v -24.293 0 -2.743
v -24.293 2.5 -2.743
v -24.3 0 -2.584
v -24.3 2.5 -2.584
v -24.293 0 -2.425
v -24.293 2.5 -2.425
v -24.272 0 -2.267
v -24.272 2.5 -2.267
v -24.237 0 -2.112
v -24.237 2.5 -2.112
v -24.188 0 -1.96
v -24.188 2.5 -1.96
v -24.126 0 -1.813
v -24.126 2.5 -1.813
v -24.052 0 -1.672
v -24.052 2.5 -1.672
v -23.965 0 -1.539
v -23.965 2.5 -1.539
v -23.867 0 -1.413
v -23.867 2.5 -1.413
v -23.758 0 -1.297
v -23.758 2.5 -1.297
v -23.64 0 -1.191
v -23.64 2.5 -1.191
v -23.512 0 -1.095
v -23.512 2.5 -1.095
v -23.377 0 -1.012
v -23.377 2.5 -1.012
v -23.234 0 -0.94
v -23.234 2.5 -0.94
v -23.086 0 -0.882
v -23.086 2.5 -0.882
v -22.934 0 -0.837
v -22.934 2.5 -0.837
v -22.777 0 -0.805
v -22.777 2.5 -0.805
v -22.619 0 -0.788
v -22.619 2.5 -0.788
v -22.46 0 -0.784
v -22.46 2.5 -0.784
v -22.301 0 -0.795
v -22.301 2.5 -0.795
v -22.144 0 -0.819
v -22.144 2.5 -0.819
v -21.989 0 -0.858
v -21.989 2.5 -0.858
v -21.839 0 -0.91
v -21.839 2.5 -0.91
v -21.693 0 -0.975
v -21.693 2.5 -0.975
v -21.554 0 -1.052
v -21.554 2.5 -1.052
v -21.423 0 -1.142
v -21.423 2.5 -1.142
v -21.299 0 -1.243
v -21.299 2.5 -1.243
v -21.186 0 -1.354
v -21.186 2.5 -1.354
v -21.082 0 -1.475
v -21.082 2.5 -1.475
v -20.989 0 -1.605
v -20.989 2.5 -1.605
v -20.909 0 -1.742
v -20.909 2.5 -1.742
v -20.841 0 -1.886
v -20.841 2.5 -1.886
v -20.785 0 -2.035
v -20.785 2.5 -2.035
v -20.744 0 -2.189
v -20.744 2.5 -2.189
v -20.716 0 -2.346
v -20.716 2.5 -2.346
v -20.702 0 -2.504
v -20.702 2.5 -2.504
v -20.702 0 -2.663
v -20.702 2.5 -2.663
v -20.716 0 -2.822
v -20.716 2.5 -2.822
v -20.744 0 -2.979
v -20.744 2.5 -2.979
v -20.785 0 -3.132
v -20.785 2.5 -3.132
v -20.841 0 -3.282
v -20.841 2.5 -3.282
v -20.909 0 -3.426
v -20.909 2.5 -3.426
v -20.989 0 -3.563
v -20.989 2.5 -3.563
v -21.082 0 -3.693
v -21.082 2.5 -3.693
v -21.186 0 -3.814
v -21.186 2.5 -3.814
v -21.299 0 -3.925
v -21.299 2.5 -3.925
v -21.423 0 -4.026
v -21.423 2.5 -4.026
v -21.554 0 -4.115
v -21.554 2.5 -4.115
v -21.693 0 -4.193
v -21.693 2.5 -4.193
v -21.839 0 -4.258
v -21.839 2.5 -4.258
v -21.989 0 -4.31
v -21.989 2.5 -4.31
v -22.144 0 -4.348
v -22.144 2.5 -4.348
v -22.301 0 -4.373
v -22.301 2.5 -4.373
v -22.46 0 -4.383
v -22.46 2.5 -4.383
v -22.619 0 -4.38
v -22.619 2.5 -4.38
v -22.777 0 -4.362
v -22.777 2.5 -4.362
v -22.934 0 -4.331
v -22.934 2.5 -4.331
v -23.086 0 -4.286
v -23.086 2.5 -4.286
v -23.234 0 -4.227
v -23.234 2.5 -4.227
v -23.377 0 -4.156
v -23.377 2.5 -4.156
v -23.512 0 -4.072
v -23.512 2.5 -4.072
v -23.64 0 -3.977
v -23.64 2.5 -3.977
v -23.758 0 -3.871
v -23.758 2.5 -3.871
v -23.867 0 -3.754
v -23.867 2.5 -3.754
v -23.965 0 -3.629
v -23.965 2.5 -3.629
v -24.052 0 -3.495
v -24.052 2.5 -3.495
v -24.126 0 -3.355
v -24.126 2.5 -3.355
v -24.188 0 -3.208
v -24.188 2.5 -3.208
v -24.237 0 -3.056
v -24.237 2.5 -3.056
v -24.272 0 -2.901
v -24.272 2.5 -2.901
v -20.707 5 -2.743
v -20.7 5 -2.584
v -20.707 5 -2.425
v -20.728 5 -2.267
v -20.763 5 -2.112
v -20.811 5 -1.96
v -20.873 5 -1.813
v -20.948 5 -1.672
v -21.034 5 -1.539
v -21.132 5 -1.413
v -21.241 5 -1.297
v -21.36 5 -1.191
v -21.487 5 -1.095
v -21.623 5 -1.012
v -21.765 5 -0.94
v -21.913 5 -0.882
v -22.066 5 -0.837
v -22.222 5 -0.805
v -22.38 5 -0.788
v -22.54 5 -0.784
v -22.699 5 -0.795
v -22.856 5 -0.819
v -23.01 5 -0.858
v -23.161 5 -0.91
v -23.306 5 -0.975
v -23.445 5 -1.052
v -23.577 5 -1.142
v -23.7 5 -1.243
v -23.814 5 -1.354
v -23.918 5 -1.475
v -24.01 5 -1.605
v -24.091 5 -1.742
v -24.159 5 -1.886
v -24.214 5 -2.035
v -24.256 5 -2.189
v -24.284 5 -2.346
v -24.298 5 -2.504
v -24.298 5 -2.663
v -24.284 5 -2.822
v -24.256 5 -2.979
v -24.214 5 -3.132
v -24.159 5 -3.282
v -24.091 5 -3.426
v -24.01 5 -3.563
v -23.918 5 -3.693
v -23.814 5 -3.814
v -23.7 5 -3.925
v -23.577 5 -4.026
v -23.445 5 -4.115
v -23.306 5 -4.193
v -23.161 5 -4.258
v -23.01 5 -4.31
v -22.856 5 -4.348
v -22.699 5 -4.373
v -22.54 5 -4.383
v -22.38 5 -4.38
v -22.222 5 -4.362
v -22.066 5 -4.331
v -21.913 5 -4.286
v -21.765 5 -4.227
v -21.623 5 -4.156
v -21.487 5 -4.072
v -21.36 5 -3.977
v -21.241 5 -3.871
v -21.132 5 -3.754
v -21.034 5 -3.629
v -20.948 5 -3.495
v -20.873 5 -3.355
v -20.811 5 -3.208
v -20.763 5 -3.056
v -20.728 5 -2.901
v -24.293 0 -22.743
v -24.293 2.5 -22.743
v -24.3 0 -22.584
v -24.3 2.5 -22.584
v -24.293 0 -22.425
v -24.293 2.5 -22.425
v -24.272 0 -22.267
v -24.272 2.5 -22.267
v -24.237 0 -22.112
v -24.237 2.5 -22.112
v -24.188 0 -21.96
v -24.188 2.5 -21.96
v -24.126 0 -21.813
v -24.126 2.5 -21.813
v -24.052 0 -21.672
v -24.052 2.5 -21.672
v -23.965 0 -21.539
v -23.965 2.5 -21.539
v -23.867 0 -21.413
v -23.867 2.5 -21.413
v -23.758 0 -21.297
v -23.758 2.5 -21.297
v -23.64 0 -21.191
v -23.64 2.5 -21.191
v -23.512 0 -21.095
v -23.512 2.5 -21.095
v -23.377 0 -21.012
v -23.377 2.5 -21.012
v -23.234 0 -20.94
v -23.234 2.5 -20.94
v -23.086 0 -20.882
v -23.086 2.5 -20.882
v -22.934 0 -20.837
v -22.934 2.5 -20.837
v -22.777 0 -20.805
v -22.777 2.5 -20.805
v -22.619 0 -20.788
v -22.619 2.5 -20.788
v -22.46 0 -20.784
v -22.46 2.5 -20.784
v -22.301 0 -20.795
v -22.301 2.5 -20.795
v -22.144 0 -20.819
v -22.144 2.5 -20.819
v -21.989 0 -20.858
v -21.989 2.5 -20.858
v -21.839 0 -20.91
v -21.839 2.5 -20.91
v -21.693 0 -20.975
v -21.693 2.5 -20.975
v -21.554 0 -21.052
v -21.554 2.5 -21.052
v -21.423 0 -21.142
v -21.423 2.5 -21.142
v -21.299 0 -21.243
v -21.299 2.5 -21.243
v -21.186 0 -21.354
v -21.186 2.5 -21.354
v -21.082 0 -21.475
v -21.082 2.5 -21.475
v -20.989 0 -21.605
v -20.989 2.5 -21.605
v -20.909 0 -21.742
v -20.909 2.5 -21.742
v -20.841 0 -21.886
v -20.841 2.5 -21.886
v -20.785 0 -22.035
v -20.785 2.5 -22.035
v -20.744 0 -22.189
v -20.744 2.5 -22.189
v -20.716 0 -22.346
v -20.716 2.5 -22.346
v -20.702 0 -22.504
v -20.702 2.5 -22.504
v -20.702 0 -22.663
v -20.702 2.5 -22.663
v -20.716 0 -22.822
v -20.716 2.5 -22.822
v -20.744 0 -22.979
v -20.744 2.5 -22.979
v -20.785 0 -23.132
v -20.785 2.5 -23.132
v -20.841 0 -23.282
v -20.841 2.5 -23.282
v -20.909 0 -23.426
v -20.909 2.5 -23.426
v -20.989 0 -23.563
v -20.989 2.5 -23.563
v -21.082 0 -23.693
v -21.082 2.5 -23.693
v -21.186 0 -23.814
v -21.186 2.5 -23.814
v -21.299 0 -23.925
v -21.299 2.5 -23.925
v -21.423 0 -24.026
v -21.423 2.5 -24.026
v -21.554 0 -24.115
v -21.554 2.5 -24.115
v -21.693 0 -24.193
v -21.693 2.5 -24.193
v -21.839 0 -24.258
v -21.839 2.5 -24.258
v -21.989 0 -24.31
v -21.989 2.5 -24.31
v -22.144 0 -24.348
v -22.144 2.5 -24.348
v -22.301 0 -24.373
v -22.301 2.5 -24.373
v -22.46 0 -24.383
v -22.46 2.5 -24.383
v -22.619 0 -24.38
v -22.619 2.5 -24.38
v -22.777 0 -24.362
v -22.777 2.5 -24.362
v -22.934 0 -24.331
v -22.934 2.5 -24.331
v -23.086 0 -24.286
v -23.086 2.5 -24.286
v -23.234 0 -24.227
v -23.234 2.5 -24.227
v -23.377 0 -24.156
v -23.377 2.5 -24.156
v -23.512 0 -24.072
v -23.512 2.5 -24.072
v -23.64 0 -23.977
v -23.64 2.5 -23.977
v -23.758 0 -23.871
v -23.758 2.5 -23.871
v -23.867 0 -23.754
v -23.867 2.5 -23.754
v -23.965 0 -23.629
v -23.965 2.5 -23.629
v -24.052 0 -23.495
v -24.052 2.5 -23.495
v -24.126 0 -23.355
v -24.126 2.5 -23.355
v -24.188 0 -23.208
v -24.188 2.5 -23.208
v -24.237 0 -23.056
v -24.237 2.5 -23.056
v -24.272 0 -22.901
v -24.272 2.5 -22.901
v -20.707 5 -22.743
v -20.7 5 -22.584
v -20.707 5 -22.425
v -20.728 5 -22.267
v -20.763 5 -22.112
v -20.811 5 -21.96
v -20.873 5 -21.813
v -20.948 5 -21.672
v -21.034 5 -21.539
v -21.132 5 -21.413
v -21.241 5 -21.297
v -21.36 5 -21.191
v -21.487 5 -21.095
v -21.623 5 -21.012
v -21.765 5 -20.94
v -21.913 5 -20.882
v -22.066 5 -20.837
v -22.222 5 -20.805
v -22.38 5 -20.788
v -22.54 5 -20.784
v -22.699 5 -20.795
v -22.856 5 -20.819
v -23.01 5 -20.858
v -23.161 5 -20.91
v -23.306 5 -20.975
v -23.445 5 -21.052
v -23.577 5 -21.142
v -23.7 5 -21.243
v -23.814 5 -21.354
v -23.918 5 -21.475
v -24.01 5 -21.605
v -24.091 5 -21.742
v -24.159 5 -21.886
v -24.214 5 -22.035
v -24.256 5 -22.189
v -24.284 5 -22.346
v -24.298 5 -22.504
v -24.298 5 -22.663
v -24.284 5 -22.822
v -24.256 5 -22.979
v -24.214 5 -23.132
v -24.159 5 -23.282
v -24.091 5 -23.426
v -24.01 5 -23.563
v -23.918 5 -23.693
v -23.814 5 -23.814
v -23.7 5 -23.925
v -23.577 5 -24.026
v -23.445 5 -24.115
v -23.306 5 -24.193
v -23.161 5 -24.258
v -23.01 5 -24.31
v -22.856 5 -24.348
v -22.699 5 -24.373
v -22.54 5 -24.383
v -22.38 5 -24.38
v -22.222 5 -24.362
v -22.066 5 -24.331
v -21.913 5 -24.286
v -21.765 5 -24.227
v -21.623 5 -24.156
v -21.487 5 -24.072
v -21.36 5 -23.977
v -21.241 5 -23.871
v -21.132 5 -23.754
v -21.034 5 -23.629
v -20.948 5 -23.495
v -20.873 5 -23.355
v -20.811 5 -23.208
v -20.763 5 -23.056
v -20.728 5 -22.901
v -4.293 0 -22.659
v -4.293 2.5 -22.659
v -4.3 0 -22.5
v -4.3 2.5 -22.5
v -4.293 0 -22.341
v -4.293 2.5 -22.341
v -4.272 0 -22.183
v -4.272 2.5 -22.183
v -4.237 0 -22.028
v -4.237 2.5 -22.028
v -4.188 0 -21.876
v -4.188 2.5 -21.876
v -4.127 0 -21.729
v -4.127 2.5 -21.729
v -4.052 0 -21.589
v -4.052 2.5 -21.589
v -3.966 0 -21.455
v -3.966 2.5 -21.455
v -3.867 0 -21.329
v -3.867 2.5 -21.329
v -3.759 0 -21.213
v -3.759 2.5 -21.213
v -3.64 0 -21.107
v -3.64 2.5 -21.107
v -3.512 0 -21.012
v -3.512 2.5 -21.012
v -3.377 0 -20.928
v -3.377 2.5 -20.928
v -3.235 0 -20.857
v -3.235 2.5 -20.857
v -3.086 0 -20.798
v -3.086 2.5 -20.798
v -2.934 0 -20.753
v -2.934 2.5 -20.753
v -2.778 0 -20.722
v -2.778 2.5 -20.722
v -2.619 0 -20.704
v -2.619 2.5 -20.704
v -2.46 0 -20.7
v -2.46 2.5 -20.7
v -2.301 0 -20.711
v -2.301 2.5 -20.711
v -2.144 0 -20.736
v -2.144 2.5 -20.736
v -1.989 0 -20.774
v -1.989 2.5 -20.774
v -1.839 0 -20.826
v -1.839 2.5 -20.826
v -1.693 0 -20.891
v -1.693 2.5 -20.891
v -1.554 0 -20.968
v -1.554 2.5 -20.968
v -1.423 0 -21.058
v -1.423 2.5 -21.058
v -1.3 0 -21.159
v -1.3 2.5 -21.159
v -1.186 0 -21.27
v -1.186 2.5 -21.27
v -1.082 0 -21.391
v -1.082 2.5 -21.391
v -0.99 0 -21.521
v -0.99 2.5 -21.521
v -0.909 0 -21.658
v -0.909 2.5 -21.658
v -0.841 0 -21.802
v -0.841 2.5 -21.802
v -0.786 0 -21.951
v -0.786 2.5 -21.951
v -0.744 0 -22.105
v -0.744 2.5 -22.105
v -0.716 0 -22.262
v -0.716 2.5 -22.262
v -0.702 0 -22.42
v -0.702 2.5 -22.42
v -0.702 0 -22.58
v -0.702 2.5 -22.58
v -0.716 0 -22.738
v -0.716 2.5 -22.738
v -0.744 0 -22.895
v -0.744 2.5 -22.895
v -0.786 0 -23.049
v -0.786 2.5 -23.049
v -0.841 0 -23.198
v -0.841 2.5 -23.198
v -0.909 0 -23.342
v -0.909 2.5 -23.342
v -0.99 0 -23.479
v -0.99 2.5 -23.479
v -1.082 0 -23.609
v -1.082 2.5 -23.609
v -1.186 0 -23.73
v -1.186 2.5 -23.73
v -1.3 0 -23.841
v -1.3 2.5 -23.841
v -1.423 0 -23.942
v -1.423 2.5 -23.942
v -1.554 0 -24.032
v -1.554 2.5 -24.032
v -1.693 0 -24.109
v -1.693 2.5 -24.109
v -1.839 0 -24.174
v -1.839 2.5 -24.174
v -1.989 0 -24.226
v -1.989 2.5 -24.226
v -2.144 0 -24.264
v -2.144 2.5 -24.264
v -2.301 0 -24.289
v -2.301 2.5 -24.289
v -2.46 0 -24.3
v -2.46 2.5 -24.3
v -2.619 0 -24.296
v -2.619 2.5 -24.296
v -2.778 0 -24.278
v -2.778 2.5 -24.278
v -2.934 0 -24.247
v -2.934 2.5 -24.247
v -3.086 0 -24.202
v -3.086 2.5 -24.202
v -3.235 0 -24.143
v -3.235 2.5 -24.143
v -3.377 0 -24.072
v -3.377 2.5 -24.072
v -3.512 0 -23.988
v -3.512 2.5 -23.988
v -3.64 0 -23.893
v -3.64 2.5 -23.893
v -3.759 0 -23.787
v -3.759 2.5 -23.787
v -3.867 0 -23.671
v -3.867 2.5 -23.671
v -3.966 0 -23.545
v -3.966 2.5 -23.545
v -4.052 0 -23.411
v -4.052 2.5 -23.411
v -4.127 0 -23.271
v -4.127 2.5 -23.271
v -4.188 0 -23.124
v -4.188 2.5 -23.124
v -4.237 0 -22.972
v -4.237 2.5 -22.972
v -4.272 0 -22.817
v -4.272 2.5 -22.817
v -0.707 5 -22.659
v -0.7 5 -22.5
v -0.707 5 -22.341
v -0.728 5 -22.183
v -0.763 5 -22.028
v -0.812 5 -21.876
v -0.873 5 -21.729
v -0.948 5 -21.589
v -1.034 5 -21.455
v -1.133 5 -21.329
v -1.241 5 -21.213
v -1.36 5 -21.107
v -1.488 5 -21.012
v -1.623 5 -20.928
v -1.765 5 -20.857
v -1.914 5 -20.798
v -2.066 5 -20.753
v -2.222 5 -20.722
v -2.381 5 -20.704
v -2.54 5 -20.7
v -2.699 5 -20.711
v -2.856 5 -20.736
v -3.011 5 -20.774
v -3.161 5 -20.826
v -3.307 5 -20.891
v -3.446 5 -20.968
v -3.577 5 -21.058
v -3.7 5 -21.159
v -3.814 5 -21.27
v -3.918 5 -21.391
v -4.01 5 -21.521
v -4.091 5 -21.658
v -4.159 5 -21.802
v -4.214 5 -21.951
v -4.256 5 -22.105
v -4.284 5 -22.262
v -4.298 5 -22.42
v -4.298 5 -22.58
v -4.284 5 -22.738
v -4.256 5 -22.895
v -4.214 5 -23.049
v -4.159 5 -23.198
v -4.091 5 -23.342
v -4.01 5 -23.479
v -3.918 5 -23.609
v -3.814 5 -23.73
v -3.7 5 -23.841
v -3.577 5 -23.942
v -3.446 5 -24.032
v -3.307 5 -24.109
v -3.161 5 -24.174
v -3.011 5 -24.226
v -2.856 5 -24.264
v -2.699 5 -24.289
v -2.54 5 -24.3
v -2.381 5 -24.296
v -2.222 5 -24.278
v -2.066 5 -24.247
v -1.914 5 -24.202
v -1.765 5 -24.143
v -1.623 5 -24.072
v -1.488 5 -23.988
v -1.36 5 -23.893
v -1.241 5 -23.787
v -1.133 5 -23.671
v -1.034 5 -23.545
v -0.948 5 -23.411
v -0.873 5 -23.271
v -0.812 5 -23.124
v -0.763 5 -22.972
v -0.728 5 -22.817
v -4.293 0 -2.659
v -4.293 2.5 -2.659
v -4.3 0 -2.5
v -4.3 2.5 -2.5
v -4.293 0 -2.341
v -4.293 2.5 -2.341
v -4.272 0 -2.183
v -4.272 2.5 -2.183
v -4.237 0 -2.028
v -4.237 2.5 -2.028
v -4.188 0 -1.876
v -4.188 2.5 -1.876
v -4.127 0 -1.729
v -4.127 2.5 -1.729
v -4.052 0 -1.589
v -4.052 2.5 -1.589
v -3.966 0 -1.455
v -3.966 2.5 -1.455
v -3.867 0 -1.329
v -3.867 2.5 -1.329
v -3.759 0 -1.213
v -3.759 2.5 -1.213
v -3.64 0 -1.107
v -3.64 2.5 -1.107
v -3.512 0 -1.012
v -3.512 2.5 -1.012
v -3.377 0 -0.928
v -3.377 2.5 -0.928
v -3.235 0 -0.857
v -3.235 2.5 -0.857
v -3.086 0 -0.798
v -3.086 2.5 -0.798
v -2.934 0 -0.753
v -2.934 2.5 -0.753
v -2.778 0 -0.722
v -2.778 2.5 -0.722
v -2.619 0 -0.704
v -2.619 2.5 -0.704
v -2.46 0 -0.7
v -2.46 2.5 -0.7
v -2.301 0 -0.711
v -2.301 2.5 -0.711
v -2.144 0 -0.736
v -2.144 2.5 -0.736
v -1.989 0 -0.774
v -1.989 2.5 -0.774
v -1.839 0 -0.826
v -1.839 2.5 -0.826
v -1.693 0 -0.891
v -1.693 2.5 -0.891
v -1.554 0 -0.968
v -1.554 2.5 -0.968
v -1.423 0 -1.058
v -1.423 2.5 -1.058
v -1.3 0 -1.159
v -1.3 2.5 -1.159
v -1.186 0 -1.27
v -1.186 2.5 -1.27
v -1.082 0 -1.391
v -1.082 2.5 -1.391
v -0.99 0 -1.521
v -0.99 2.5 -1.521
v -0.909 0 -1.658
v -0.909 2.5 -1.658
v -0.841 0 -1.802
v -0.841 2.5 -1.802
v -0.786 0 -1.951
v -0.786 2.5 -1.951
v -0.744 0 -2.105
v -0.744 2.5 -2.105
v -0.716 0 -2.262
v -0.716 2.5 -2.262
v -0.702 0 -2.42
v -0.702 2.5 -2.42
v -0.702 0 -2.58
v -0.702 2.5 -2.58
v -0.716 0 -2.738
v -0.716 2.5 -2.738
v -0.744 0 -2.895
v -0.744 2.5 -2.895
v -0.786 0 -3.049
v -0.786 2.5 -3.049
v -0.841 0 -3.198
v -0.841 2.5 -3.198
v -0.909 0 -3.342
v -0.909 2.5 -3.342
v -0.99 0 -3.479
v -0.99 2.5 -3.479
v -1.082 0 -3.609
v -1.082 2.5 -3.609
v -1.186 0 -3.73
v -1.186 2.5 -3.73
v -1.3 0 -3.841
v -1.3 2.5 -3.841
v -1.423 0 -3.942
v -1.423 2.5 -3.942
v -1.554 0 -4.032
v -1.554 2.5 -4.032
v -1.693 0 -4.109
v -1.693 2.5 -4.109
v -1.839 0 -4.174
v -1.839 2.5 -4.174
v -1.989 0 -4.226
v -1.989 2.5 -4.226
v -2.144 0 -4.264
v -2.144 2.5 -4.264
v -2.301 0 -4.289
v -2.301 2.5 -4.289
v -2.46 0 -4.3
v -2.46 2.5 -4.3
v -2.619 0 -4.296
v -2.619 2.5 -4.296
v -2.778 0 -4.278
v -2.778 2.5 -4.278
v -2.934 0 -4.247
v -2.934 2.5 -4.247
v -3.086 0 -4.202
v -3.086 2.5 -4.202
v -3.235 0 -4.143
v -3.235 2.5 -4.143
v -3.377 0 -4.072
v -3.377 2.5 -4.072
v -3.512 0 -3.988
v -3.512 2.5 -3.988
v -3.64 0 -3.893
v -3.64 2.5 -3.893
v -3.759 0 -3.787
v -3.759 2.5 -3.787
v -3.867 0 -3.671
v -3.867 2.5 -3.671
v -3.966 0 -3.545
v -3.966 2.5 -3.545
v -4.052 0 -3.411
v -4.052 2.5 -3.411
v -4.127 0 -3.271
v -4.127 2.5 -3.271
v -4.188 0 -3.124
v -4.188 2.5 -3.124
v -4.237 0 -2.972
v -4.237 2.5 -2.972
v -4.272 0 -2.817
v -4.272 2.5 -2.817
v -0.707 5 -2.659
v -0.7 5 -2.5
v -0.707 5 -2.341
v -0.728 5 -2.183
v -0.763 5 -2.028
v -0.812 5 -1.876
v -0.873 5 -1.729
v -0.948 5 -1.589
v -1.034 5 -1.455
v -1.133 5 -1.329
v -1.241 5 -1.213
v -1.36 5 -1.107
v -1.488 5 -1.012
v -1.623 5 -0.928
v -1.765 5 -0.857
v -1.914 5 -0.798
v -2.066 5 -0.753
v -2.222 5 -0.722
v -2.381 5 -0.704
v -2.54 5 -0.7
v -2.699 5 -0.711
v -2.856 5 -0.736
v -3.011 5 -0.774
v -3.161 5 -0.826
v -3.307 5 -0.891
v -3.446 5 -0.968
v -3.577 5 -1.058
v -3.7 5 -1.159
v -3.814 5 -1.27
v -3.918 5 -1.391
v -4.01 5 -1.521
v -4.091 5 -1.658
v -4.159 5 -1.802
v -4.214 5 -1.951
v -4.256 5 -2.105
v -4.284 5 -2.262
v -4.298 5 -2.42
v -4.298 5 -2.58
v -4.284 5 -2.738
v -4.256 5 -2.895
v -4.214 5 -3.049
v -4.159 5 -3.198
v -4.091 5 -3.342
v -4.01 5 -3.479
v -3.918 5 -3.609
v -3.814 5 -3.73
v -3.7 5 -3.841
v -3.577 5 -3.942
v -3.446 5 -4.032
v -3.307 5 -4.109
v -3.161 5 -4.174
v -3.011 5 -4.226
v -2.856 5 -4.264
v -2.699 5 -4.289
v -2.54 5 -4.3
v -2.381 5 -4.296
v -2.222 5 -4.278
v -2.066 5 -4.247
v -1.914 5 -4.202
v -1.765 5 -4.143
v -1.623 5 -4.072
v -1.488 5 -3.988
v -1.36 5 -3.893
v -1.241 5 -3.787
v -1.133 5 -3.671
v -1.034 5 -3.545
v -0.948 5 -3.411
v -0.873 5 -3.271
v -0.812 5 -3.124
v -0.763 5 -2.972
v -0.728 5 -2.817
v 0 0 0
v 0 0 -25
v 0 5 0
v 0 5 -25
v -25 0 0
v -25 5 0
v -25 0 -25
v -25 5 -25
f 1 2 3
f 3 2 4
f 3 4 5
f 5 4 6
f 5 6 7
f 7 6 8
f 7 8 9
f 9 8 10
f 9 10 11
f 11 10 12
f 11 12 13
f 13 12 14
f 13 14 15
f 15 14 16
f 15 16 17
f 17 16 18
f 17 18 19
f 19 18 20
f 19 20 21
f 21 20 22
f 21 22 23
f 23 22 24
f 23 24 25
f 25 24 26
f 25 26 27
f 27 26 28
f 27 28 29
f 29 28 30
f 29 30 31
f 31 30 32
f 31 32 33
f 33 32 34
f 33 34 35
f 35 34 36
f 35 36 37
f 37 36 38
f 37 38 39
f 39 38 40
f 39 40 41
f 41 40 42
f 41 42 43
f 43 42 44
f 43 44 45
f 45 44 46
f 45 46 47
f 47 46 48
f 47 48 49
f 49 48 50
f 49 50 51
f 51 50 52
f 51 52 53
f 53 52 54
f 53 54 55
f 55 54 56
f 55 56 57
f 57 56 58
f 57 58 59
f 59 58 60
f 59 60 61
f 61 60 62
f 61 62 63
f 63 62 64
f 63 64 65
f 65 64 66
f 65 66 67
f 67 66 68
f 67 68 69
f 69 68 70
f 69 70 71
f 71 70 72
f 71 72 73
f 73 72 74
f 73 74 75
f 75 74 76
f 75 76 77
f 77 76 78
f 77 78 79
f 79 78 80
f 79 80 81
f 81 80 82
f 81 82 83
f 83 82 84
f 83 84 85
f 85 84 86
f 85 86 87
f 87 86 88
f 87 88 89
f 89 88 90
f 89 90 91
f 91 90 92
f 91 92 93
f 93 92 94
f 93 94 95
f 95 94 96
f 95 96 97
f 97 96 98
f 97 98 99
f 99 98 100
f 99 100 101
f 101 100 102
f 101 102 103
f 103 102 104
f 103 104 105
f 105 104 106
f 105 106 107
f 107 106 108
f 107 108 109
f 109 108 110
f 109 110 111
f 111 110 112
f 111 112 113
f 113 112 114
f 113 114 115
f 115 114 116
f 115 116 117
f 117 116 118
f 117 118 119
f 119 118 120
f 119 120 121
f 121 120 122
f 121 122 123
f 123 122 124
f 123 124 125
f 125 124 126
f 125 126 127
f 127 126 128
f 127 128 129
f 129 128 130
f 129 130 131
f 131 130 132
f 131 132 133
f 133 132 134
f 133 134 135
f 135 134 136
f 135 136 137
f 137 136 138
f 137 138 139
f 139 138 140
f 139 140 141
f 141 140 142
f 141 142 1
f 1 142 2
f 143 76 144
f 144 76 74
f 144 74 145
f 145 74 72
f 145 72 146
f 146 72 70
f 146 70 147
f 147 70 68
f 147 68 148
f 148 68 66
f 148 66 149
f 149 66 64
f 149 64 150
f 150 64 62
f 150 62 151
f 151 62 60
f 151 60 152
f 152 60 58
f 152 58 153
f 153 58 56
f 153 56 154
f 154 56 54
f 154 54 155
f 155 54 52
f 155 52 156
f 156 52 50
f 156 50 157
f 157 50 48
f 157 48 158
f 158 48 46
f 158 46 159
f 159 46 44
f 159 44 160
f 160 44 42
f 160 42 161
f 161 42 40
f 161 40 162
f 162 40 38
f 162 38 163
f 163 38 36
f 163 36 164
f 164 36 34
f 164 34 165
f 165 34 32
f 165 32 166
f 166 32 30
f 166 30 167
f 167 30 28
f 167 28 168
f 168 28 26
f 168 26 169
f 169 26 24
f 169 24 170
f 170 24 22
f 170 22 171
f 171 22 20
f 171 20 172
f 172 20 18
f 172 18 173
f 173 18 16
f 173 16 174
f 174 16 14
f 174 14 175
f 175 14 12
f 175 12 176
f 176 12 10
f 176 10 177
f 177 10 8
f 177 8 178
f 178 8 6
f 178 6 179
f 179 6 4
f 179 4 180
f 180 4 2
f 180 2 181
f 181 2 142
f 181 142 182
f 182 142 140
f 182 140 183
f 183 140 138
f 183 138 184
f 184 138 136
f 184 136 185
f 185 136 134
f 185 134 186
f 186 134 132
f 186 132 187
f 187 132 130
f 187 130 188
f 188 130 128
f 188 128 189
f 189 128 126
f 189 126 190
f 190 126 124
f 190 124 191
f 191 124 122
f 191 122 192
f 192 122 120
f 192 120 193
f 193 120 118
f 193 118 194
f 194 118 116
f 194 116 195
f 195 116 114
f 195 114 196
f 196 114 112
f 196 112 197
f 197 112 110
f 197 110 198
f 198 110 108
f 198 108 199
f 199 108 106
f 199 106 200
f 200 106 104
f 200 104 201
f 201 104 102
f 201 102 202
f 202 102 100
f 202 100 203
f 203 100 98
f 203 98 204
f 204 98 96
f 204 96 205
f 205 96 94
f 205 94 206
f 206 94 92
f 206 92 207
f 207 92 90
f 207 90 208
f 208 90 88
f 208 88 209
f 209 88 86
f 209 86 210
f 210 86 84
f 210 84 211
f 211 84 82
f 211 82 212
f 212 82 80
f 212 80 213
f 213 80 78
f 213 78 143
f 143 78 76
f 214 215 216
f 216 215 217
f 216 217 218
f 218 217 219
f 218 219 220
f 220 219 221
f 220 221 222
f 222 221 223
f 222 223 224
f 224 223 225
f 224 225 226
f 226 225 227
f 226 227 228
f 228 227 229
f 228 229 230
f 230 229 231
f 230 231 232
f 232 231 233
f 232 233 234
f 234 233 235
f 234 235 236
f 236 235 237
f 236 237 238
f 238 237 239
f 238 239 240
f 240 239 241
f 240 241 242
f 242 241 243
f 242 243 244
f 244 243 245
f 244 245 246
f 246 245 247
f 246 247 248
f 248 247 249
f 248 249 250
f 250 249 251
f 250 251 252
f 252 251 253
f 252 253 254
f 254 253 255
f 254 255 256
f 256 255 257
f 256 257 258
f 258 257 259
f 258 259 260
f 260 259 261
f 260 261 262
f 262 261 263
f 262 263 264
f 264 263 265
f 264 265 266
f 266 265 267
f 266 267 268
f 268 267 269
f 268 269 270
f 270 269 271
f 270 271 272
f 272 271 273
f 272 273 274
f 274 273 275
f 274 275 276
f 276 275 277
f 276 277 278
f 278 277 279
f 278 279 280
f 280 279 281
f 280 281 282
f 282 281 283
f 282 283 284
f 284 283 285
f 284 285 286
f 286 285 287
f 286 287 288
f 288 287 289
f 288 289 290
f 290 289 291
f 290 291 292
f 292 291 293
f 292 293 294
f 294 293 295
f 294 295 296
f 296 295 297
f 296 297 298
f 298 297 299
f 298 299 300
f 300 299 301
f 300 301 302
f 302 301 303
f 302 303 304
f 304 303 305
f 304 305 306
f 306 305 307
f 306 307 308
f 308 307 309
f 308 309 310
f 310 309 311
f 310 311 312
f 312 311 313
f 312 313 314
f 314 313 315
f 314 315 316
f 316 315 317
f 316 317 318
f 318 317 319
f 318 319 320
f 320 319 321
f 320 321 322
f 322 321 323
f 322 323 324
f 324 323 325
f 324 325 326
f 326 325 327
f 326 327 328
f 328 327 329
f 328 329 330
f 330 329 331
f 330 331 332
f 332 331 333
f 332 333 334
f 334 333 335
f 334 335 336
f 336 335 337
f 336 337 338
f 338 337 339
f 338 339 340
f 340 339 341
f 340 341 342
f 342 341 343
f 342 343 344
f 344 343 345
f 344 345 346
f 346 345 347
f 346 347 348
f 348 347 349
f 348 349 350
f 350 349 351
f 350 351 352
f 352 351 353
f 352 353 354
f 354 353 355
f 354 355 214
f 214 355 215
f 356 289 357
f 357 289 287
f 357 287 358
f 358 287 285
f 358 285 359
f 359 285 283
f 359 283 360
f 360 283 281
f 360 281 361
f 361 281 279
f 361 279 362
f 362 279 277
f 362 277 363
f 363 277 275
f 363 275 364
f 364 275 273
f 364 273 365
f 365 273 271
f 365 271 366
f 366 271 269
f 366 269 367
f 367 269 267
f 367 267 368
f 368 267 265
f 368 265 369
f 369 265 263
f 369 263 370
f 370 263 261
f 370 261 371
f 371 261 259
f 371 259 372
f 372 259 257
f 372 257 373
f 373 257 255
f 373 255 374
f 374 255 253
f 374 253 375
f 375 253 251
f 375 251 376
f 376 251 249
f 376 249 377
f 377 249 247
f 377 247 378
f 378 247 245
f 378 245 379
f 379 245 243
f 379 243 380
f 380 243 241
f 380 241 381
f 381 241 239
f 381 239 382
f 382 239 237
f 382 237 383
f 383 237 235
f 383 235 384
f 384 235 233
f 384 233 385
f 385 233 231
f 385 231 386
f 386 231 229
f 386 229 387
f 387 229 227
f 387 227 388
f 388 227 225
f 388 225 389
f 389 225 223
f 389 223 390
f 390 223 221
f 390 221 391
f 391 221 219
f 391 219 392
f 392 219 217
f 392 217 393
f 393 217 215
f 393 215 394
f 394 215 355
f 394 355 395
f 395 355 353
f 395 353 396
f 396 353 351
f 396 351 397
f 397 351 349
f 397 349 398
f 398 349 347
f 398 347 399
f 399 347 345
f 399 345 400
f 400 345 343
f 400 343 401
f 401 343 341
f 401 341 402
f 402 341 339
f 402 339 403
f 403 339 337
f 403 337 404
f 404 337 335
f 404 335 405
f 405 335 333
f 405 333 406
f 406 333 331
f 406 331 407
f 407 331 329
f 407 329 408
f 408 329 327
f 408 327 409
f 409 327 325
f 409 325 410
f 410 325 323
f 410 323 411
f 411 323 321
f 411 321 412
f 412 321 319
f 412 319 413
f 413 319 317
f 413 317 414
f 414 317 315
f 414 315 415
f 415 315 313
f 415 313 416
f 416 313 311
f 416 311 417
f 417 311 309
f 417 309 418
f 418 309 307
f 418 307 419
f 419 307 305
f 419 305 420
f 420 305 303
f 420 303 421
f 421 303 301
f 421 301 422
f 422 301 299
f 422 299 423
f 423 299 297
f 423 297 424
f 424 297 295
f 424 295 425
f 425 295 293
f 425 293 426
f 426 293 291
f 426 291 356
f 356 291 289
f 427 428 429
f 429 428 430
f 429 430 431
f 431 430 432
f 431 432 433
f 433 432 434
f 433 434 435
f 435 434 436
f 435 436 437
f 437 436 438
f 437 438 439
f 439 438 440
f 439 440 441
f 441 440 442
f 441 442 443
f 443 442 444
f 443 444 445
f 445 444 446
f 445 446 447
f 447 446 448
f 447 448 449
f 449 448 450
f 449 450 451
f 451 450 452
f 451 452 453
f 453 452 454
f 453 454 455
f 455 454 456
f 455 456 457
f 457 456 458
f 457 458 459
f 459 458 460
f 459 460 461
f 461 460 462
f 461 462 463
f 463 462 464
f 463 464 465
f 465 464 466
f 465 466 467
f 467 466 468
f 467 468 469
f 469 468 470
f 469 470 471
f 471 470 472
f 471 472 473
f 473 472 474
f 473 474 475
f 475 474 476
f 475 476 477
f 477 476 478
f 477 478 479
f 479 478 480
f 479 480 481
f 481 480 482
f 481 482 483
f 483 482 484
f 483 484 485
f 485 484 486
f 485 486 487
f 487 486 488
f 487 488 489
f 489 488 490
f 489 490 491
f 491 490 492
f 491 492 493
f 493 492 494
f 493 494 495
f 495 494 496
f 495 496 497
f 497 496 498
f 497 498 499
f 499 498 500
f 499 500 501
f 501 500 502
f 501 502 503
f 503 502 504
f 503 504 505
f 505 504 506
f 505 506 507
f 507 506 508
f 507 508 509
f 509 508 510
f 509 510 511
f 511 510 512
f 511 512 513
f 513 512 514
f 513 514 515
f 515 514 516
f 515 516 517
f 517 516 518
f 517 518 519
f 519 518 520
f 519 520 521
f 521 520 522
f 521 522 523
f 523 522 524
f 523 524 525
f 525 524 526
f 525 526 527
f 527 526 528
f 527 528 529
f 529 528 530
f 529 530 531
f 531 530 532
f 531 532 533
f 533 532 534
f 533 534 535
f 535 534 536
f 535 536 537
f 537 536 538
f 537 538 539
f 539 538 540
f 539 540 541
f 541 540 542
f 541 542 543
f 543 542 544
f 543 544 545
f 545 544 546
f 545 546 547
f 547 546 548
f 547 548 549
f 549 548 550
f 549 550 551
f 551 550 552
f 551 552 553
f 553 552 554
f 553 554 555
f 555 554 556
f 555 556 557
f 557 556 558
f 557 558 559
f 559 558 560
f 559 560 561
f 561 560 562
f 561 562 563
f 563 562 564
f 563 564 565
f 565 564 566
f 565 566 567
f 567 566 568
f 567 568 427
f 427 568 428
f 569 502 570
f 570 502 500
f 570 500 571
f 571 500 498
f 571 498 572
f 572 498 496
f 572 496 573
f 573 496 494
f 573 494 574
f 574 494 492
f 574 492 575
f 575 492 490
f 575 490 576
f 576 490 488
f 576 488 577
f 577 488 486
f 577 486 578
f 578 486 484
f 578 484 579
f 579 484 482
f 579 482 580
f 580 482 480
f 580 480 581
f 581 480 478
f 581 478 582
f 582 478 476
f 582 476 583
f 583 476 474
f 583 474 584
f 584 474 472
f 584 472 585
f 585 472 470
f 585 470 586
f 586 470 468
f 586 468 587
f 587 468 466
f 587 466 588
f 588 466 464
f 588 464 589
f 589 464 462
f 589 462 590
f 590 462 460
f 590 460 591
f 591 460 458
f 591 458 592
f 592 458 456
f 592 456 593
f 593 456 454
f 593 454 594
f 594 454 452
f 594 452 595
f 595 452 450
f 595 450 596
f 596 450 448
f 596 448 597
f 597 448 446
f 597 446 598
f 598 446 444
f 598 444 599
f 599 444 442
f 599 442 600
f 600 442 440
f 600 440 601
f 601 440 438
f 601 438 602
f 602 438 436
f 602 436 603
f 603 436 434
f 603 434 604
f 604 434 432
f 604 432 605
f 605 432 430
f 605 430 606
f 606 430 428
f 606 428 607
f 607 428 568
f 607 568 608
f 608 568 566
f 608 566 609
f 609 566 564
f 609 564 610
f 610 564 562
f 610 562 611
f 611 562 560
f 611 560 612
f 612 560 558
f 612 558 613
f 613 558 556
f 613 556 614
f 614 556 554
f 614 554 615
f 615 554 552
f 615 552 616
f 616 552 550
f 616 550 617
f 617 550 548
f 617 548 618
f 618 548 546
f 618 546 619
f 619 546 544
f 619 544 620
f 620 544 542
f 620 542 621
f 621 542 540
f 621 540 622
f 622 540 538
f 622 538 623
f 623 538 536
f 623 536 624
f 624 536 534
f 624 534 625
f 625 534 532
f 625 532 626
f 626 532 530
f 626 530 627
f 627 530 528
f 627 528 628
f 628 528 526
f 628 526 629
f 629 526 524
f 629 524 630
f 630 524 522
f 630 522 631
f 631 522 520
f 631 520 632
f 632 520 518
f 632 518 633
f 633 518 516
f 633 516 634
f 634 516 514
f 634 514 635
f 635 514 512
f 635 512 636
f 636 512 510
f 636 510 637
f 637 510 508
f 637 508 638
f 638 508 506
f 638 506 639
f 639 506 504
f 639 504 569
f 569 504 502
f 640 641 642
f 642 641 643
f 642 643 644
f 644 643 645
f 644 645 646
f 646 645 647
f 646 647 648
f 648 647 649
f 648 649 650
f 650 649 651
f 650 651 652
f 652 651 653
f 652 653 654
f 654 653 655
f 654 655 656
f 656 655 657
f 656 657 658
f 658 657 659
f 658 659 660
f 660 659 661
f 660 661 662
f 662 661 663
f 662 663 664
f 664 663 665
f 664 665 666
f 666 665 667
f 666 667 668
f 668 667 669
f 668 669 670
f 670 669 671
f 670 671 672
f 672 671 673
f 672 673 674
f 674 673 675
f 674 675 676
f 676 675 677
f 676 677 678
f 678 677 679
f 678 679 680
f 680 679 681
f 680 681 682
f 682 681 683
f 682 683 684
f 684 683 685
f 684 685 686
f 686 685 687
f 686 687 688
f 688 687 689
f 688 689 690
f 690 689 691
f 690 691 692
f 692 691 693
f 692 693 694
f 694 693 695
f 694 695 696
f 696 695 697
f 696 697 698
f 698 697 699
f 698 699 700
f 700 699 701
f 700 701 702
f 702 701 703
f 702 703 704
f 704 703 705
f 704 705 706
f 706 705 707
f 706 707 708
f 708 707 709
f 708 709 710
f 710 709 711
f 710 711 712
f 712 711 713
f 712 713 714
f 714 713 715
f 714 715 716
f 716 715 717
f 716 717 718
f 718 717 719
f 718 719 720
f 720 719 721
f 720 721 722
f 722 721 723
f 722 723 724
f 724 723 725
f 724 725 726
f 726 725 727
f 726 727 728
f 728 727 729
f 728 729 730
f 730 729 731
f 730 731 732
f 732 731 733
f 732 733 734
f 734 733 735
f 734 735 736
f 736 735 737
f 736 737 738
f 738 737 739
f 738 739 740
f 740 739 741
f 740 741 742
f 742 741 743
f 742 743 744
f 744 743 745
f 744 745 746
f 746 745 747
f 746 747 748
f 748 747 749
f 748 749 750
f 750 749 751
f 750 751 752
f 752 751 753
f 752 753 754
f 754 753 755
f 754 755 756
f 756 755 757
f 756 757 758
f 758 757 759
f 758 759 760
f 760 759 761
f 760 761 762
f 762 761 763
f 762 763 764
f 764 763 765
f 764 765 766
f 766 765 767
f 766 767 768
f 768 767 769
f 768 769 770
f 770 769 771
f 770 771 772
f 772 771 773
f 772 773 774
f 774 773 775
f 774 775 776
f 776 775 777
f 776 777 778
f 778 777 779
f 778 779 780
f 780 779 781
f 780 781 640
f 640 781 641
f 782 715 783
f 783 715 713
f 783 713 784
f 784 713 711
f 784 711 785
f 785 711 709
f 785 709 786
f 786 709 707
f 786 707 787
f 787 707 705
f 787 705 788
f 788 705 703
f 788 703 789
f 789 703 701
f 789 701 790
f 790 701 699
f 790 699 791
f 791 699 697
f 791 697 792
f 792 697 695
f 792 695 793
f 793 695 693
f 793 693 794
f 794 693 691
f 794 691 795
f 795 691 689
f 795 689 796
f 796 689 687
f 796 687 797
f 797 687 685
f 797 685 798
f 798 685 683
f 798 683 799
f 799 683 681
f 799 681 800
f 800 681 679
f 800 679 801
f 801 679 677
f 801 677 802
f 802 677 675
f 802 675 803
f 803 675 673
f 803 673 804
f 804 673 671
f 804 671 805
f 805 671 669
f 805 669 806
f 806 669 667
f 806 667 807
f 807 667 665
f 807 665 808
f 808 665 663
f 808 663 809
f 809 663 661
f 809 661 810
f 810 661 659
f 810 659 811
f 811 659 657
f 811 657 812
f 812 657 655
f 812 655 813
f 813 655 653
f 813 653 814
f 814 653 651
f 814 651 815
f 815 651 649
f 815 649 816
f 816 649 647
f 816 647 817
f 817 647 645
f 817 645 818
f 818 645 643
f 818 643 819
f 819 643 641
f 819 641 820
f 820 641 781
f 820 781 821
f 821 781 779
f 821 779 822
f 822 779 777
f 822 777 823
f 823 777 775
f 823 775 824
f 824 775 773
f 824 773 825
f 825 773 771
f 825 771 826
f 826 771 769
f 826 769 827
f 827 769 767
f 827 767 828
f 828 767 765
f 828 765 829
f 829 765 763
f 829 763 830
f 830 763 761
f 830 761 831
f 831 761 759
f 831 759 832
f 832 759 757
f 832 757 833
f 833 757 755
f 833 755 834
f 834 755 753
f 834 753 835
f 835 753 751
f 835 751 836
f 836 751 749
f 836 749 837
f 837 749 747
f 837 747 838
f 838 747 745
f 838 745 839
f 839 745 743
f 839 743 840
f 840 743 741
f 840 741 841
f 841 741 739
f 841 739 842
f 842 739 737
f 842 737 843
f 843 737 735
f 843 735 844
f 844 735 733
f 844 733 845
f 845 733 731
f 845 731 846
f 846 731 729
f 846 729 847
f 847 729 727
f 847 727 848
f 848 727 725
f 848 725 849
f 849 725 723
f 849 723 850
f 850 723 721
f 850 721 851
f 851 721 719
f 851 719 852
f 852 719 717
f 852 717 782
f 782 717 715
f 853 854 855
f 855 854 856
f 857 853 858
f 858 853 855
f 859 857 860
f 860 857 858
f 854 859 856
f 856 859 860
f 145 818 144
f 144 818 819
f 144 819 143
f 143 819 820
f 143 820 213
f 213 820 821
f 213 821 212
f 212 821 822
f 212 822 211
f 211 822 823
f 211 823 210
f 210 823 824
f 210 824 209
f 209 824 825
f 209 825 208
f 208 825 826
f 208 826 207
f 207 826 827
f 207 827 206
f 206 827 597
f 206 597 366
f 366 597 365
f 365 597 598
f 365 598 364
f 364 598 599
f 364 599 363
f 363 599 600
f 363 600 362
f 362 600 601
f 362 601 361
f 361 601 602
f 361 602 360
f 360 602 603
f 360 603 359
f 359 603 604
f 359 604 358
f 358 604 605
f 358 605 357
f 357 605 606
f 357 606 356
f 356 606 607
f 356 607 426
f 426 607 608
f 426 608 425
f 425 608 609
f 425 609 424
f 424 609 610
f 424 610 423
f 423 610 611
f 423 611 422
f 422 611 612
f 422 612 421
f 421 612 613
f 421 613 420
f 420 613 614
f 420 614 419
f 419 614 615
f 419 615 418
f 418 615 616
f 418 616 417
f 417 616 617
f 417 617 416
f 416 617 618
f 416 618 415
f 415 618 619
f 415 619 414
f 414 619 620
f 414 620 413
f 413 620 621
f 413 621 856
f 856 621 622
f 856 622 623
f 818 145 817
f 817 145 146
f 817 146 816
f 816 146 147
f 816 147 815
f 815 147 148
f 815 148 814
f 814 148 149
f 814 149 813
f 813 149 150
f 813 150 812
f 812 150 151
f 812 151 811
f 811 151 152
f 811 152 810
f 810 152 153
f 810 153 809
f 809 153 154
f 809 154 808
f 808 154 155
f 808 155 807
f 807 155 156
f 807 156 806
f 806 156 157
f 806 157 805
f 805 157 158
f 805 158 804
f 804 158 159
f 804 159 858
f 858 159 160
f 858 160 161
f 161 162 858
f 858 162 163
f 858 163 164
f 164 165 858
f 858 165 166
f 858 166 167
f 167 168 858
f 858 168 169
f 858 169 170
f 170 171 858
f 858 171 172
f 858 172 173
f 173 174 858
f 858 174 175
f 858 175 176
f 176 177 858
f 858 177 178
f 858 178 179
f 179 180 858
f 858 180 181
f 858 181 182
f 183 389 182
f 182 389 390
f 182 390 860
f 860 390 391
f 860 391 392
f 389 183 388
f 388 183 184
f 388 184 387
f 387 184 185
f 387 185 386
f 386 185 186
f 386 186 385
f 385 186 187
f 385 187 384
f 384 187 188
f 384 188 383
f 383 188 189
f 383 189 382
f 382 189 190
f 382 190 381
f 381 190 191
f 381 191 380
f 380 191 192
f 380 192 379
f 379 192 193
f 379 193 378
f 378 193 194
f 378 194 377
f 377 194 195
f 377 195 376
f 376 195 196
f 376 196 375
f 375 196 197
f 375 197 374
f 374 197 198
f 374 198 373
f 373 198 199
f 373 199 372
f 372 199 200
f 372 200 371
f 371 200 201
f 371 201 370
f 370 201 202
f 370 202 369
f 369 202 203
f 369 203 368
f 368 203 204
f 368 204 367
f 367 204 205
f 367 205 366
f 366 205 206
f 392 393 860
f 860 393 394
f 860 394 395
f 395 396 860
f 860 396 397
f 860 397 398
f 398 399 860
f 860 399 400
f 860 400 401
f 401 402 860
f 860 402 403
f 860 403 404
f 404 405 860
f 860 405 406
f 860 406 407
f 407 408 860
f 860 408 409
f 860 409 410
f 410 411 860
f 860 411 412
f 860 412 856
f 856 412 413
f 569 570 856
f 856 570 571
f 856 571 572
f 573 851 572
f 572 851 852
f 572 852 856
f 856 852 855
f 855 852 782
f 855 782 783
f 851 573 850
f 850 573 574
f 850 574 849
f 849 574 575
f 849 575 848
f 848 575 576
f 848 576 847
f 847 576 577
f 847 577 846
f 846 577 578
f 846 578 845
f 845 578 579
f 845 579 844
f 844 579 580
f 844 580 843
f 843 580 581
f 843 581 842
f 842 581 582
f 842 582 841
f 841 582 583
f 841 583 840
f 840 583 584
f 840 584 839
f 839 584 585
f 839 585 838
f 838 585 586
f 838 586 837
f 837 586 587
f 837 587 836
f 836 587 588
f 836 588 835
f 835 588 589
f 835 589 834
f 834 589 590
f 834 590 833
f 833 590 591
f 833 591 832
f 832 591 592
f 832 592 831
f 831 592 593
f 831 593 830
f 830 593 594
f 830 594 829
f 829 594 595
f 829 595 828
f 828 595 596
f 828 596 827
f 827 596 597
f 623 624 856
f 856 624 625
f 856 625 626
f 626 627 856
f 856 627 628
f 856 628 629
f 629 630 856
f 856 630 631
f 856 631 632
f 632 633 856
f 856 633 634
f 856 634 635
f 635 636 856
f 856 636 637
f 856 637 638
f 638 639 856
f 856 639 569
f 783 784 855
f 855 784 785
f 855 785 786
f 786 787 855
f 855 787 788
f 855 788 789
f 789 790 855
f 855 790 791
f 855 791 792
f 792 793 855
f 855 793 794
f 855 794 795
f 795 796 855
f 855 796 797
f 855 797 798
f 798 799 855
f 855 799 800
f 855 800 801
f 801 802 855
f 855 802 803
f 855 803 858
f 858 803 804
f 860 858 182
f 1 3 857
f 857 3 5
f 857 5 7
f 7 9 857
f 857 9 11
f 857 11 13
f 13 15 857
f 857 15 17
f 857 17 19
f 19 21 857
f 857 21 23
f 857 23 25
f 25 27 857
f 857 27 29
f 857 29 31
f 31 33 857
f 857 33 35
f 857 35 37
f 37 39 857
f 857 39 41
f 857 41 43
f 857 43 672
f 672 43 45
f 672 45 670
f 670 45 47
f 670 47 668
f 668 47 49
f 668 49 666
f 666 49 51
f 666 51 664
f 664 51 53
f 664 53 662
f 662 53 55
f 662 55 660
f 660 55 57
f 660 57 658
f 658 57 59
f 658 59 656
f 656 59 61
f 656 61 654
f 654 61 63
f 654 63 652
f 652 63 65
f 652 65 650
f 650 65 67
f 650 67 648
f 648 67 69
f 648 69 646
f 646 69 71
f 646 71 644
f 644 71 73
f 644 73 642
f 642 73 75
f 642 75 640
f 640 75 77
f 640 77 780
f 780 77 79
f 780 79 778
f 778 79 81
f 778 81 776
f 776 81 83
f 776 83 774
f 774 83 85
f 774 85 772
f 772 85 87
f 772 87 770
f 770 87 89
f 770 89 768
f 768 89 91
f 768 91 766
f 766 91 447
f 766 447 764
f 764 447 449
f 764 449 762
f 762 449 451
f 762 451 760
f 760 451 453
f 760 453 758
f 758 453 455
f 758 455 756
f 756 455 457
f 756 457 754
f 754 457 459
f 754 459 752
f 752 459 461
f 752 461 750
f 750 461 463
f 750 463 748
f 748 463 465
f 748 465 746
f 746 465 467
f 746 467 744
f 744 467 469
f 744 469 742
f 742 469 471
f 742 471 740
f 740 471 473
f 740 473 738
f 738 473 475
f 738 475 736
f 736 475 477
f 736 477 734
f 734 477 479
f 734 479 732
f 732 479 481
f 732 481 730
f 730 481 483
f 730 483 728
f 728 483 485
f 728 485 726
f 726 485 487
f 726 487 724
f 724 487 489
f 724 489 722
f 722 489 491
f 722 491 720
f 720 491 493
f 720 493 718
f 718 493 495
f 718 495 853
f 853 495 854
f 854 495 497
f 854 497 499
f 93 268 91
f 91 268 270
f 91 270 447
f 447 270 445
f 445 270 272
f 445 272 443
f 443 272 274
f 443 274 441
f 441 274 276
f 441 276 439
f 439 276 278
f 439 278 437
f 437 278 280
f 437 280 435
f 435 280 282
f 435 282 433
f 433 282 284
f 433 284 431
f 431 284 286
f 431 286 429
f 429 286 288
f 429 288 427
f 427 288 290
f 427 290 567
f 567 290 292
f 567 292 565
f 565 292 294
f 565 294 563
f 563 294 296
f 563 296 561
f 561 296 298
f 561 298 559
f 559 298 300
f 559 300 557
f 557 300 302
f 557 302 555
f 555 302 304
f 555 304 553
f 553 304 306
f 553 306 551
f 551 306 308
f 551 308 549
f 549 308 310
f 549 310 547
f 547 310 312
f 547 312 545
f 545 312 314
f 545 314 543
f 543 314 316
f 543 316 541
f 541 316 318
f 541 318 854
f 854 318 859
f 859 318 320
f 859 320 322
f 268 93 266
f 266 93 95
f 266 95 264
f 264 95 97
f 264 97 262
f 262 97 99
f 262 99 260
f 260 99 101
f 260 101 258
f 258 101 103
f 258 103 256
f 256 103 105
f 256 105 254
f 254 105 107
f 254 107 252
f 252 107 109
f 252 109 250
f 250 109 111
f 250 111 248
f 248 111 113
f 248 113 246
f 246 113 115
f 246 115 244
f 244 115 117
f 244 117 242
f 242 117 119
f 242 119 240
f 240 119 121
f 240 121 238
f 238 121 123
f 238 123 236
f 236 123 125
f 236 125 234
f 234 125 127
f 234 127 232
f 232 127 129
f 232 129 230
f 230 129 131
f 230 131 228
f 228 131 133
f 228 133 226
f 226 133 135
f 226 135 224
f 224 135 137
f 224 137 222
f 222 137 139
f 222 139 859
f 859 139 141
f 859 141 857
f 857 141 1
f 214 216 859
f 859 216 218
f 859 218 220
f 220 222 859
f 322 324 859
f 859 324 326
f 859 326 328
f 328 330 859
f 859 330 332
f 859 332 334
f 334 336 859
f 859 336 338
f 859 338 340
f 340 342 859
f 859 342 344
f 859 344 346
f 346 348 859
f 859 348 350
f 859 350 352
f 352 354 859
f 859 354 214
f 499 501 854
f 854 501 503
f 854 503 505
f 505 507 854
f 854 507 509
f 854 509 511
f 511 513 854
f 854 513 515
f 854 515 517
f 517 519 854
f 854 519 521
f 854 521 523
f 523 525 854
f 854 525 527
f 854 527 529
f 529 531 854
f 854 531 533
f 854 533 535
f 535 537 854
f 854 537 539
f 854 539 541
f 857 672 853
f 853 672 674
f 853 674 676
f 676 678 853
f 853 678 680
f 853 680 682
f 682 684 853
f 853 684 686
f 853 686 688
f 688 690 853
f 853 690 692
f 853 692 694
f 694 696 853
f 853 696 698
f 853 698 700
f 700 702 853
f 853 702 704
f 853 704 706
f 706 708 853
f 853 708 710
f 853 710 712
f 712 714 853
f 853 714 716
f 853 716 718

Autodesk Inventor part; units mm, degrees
ref_plane "YZ Plane" through (0, 0, 0) normal (1, 0, 0) x (0, 1, 0)
ref_plane "XZ Plane" through (0, 0, 0) normal (0, 1, 0) x (-1, 0, 0)
ref_plane "XY Plane" through (0, 0, 0) normal (0, 0, 1) x (1, 0, 0)
sketch "スケッチ1" plane through (0, 0, 0) normal (0, 1, 0) x (-1, 0, 0)
  line L0 (0, 0) -> (25, 0)
  line L1 (25, 0) -> (25, -25)
  line L2 (25, -25) -> (0, -25)
  line L3 (0, -25) -> (0, 0)
  dimension "d0" = 25
  dimension "d1" = 25
extrude "押し出し1" add sketch "スケッチ1" along normal blind 5
sketch "スケッチ2" plane through (0, 5, 0) normal (0, 1, 0) x (1, 0, 0)
  line L0 (-25, 0) -> (0, 0) projected
  line L1 (0, 0) -> (0, 25) projected
  line L2 (0, 25) -> (-25, 25) projected
  line L3 (-25, 25) -> (-25, 0) projected
  point P0 (-2.5, 2.5)
  point P1 (-2.5, 2.5)
  point P2 (-2.5, 22.5)
  point P3 (-22.4998, 22.5838)
  point P4 (-22.4998, 2.5838)
  dimension "d4" = 2.5
  dimension "d5" = 2.5
  dimension "d6" = 20
  dimension "d7" = 20
  dimension "d8" = 20
  dimension "d9" = 20
  dimension "d10" = 2.5
  dimension "d12" = 2.5002
hole "穴1" at (-2.5, 5, -2.5) at (-2.5, 5, -22.5) at (-22.4998, 5, -22.5838) at (-22.4998, 5, -2.5838) direction (0, -1, 0) diameter 3.6 end through all
properties part number "Plate5mmforPrint2"
